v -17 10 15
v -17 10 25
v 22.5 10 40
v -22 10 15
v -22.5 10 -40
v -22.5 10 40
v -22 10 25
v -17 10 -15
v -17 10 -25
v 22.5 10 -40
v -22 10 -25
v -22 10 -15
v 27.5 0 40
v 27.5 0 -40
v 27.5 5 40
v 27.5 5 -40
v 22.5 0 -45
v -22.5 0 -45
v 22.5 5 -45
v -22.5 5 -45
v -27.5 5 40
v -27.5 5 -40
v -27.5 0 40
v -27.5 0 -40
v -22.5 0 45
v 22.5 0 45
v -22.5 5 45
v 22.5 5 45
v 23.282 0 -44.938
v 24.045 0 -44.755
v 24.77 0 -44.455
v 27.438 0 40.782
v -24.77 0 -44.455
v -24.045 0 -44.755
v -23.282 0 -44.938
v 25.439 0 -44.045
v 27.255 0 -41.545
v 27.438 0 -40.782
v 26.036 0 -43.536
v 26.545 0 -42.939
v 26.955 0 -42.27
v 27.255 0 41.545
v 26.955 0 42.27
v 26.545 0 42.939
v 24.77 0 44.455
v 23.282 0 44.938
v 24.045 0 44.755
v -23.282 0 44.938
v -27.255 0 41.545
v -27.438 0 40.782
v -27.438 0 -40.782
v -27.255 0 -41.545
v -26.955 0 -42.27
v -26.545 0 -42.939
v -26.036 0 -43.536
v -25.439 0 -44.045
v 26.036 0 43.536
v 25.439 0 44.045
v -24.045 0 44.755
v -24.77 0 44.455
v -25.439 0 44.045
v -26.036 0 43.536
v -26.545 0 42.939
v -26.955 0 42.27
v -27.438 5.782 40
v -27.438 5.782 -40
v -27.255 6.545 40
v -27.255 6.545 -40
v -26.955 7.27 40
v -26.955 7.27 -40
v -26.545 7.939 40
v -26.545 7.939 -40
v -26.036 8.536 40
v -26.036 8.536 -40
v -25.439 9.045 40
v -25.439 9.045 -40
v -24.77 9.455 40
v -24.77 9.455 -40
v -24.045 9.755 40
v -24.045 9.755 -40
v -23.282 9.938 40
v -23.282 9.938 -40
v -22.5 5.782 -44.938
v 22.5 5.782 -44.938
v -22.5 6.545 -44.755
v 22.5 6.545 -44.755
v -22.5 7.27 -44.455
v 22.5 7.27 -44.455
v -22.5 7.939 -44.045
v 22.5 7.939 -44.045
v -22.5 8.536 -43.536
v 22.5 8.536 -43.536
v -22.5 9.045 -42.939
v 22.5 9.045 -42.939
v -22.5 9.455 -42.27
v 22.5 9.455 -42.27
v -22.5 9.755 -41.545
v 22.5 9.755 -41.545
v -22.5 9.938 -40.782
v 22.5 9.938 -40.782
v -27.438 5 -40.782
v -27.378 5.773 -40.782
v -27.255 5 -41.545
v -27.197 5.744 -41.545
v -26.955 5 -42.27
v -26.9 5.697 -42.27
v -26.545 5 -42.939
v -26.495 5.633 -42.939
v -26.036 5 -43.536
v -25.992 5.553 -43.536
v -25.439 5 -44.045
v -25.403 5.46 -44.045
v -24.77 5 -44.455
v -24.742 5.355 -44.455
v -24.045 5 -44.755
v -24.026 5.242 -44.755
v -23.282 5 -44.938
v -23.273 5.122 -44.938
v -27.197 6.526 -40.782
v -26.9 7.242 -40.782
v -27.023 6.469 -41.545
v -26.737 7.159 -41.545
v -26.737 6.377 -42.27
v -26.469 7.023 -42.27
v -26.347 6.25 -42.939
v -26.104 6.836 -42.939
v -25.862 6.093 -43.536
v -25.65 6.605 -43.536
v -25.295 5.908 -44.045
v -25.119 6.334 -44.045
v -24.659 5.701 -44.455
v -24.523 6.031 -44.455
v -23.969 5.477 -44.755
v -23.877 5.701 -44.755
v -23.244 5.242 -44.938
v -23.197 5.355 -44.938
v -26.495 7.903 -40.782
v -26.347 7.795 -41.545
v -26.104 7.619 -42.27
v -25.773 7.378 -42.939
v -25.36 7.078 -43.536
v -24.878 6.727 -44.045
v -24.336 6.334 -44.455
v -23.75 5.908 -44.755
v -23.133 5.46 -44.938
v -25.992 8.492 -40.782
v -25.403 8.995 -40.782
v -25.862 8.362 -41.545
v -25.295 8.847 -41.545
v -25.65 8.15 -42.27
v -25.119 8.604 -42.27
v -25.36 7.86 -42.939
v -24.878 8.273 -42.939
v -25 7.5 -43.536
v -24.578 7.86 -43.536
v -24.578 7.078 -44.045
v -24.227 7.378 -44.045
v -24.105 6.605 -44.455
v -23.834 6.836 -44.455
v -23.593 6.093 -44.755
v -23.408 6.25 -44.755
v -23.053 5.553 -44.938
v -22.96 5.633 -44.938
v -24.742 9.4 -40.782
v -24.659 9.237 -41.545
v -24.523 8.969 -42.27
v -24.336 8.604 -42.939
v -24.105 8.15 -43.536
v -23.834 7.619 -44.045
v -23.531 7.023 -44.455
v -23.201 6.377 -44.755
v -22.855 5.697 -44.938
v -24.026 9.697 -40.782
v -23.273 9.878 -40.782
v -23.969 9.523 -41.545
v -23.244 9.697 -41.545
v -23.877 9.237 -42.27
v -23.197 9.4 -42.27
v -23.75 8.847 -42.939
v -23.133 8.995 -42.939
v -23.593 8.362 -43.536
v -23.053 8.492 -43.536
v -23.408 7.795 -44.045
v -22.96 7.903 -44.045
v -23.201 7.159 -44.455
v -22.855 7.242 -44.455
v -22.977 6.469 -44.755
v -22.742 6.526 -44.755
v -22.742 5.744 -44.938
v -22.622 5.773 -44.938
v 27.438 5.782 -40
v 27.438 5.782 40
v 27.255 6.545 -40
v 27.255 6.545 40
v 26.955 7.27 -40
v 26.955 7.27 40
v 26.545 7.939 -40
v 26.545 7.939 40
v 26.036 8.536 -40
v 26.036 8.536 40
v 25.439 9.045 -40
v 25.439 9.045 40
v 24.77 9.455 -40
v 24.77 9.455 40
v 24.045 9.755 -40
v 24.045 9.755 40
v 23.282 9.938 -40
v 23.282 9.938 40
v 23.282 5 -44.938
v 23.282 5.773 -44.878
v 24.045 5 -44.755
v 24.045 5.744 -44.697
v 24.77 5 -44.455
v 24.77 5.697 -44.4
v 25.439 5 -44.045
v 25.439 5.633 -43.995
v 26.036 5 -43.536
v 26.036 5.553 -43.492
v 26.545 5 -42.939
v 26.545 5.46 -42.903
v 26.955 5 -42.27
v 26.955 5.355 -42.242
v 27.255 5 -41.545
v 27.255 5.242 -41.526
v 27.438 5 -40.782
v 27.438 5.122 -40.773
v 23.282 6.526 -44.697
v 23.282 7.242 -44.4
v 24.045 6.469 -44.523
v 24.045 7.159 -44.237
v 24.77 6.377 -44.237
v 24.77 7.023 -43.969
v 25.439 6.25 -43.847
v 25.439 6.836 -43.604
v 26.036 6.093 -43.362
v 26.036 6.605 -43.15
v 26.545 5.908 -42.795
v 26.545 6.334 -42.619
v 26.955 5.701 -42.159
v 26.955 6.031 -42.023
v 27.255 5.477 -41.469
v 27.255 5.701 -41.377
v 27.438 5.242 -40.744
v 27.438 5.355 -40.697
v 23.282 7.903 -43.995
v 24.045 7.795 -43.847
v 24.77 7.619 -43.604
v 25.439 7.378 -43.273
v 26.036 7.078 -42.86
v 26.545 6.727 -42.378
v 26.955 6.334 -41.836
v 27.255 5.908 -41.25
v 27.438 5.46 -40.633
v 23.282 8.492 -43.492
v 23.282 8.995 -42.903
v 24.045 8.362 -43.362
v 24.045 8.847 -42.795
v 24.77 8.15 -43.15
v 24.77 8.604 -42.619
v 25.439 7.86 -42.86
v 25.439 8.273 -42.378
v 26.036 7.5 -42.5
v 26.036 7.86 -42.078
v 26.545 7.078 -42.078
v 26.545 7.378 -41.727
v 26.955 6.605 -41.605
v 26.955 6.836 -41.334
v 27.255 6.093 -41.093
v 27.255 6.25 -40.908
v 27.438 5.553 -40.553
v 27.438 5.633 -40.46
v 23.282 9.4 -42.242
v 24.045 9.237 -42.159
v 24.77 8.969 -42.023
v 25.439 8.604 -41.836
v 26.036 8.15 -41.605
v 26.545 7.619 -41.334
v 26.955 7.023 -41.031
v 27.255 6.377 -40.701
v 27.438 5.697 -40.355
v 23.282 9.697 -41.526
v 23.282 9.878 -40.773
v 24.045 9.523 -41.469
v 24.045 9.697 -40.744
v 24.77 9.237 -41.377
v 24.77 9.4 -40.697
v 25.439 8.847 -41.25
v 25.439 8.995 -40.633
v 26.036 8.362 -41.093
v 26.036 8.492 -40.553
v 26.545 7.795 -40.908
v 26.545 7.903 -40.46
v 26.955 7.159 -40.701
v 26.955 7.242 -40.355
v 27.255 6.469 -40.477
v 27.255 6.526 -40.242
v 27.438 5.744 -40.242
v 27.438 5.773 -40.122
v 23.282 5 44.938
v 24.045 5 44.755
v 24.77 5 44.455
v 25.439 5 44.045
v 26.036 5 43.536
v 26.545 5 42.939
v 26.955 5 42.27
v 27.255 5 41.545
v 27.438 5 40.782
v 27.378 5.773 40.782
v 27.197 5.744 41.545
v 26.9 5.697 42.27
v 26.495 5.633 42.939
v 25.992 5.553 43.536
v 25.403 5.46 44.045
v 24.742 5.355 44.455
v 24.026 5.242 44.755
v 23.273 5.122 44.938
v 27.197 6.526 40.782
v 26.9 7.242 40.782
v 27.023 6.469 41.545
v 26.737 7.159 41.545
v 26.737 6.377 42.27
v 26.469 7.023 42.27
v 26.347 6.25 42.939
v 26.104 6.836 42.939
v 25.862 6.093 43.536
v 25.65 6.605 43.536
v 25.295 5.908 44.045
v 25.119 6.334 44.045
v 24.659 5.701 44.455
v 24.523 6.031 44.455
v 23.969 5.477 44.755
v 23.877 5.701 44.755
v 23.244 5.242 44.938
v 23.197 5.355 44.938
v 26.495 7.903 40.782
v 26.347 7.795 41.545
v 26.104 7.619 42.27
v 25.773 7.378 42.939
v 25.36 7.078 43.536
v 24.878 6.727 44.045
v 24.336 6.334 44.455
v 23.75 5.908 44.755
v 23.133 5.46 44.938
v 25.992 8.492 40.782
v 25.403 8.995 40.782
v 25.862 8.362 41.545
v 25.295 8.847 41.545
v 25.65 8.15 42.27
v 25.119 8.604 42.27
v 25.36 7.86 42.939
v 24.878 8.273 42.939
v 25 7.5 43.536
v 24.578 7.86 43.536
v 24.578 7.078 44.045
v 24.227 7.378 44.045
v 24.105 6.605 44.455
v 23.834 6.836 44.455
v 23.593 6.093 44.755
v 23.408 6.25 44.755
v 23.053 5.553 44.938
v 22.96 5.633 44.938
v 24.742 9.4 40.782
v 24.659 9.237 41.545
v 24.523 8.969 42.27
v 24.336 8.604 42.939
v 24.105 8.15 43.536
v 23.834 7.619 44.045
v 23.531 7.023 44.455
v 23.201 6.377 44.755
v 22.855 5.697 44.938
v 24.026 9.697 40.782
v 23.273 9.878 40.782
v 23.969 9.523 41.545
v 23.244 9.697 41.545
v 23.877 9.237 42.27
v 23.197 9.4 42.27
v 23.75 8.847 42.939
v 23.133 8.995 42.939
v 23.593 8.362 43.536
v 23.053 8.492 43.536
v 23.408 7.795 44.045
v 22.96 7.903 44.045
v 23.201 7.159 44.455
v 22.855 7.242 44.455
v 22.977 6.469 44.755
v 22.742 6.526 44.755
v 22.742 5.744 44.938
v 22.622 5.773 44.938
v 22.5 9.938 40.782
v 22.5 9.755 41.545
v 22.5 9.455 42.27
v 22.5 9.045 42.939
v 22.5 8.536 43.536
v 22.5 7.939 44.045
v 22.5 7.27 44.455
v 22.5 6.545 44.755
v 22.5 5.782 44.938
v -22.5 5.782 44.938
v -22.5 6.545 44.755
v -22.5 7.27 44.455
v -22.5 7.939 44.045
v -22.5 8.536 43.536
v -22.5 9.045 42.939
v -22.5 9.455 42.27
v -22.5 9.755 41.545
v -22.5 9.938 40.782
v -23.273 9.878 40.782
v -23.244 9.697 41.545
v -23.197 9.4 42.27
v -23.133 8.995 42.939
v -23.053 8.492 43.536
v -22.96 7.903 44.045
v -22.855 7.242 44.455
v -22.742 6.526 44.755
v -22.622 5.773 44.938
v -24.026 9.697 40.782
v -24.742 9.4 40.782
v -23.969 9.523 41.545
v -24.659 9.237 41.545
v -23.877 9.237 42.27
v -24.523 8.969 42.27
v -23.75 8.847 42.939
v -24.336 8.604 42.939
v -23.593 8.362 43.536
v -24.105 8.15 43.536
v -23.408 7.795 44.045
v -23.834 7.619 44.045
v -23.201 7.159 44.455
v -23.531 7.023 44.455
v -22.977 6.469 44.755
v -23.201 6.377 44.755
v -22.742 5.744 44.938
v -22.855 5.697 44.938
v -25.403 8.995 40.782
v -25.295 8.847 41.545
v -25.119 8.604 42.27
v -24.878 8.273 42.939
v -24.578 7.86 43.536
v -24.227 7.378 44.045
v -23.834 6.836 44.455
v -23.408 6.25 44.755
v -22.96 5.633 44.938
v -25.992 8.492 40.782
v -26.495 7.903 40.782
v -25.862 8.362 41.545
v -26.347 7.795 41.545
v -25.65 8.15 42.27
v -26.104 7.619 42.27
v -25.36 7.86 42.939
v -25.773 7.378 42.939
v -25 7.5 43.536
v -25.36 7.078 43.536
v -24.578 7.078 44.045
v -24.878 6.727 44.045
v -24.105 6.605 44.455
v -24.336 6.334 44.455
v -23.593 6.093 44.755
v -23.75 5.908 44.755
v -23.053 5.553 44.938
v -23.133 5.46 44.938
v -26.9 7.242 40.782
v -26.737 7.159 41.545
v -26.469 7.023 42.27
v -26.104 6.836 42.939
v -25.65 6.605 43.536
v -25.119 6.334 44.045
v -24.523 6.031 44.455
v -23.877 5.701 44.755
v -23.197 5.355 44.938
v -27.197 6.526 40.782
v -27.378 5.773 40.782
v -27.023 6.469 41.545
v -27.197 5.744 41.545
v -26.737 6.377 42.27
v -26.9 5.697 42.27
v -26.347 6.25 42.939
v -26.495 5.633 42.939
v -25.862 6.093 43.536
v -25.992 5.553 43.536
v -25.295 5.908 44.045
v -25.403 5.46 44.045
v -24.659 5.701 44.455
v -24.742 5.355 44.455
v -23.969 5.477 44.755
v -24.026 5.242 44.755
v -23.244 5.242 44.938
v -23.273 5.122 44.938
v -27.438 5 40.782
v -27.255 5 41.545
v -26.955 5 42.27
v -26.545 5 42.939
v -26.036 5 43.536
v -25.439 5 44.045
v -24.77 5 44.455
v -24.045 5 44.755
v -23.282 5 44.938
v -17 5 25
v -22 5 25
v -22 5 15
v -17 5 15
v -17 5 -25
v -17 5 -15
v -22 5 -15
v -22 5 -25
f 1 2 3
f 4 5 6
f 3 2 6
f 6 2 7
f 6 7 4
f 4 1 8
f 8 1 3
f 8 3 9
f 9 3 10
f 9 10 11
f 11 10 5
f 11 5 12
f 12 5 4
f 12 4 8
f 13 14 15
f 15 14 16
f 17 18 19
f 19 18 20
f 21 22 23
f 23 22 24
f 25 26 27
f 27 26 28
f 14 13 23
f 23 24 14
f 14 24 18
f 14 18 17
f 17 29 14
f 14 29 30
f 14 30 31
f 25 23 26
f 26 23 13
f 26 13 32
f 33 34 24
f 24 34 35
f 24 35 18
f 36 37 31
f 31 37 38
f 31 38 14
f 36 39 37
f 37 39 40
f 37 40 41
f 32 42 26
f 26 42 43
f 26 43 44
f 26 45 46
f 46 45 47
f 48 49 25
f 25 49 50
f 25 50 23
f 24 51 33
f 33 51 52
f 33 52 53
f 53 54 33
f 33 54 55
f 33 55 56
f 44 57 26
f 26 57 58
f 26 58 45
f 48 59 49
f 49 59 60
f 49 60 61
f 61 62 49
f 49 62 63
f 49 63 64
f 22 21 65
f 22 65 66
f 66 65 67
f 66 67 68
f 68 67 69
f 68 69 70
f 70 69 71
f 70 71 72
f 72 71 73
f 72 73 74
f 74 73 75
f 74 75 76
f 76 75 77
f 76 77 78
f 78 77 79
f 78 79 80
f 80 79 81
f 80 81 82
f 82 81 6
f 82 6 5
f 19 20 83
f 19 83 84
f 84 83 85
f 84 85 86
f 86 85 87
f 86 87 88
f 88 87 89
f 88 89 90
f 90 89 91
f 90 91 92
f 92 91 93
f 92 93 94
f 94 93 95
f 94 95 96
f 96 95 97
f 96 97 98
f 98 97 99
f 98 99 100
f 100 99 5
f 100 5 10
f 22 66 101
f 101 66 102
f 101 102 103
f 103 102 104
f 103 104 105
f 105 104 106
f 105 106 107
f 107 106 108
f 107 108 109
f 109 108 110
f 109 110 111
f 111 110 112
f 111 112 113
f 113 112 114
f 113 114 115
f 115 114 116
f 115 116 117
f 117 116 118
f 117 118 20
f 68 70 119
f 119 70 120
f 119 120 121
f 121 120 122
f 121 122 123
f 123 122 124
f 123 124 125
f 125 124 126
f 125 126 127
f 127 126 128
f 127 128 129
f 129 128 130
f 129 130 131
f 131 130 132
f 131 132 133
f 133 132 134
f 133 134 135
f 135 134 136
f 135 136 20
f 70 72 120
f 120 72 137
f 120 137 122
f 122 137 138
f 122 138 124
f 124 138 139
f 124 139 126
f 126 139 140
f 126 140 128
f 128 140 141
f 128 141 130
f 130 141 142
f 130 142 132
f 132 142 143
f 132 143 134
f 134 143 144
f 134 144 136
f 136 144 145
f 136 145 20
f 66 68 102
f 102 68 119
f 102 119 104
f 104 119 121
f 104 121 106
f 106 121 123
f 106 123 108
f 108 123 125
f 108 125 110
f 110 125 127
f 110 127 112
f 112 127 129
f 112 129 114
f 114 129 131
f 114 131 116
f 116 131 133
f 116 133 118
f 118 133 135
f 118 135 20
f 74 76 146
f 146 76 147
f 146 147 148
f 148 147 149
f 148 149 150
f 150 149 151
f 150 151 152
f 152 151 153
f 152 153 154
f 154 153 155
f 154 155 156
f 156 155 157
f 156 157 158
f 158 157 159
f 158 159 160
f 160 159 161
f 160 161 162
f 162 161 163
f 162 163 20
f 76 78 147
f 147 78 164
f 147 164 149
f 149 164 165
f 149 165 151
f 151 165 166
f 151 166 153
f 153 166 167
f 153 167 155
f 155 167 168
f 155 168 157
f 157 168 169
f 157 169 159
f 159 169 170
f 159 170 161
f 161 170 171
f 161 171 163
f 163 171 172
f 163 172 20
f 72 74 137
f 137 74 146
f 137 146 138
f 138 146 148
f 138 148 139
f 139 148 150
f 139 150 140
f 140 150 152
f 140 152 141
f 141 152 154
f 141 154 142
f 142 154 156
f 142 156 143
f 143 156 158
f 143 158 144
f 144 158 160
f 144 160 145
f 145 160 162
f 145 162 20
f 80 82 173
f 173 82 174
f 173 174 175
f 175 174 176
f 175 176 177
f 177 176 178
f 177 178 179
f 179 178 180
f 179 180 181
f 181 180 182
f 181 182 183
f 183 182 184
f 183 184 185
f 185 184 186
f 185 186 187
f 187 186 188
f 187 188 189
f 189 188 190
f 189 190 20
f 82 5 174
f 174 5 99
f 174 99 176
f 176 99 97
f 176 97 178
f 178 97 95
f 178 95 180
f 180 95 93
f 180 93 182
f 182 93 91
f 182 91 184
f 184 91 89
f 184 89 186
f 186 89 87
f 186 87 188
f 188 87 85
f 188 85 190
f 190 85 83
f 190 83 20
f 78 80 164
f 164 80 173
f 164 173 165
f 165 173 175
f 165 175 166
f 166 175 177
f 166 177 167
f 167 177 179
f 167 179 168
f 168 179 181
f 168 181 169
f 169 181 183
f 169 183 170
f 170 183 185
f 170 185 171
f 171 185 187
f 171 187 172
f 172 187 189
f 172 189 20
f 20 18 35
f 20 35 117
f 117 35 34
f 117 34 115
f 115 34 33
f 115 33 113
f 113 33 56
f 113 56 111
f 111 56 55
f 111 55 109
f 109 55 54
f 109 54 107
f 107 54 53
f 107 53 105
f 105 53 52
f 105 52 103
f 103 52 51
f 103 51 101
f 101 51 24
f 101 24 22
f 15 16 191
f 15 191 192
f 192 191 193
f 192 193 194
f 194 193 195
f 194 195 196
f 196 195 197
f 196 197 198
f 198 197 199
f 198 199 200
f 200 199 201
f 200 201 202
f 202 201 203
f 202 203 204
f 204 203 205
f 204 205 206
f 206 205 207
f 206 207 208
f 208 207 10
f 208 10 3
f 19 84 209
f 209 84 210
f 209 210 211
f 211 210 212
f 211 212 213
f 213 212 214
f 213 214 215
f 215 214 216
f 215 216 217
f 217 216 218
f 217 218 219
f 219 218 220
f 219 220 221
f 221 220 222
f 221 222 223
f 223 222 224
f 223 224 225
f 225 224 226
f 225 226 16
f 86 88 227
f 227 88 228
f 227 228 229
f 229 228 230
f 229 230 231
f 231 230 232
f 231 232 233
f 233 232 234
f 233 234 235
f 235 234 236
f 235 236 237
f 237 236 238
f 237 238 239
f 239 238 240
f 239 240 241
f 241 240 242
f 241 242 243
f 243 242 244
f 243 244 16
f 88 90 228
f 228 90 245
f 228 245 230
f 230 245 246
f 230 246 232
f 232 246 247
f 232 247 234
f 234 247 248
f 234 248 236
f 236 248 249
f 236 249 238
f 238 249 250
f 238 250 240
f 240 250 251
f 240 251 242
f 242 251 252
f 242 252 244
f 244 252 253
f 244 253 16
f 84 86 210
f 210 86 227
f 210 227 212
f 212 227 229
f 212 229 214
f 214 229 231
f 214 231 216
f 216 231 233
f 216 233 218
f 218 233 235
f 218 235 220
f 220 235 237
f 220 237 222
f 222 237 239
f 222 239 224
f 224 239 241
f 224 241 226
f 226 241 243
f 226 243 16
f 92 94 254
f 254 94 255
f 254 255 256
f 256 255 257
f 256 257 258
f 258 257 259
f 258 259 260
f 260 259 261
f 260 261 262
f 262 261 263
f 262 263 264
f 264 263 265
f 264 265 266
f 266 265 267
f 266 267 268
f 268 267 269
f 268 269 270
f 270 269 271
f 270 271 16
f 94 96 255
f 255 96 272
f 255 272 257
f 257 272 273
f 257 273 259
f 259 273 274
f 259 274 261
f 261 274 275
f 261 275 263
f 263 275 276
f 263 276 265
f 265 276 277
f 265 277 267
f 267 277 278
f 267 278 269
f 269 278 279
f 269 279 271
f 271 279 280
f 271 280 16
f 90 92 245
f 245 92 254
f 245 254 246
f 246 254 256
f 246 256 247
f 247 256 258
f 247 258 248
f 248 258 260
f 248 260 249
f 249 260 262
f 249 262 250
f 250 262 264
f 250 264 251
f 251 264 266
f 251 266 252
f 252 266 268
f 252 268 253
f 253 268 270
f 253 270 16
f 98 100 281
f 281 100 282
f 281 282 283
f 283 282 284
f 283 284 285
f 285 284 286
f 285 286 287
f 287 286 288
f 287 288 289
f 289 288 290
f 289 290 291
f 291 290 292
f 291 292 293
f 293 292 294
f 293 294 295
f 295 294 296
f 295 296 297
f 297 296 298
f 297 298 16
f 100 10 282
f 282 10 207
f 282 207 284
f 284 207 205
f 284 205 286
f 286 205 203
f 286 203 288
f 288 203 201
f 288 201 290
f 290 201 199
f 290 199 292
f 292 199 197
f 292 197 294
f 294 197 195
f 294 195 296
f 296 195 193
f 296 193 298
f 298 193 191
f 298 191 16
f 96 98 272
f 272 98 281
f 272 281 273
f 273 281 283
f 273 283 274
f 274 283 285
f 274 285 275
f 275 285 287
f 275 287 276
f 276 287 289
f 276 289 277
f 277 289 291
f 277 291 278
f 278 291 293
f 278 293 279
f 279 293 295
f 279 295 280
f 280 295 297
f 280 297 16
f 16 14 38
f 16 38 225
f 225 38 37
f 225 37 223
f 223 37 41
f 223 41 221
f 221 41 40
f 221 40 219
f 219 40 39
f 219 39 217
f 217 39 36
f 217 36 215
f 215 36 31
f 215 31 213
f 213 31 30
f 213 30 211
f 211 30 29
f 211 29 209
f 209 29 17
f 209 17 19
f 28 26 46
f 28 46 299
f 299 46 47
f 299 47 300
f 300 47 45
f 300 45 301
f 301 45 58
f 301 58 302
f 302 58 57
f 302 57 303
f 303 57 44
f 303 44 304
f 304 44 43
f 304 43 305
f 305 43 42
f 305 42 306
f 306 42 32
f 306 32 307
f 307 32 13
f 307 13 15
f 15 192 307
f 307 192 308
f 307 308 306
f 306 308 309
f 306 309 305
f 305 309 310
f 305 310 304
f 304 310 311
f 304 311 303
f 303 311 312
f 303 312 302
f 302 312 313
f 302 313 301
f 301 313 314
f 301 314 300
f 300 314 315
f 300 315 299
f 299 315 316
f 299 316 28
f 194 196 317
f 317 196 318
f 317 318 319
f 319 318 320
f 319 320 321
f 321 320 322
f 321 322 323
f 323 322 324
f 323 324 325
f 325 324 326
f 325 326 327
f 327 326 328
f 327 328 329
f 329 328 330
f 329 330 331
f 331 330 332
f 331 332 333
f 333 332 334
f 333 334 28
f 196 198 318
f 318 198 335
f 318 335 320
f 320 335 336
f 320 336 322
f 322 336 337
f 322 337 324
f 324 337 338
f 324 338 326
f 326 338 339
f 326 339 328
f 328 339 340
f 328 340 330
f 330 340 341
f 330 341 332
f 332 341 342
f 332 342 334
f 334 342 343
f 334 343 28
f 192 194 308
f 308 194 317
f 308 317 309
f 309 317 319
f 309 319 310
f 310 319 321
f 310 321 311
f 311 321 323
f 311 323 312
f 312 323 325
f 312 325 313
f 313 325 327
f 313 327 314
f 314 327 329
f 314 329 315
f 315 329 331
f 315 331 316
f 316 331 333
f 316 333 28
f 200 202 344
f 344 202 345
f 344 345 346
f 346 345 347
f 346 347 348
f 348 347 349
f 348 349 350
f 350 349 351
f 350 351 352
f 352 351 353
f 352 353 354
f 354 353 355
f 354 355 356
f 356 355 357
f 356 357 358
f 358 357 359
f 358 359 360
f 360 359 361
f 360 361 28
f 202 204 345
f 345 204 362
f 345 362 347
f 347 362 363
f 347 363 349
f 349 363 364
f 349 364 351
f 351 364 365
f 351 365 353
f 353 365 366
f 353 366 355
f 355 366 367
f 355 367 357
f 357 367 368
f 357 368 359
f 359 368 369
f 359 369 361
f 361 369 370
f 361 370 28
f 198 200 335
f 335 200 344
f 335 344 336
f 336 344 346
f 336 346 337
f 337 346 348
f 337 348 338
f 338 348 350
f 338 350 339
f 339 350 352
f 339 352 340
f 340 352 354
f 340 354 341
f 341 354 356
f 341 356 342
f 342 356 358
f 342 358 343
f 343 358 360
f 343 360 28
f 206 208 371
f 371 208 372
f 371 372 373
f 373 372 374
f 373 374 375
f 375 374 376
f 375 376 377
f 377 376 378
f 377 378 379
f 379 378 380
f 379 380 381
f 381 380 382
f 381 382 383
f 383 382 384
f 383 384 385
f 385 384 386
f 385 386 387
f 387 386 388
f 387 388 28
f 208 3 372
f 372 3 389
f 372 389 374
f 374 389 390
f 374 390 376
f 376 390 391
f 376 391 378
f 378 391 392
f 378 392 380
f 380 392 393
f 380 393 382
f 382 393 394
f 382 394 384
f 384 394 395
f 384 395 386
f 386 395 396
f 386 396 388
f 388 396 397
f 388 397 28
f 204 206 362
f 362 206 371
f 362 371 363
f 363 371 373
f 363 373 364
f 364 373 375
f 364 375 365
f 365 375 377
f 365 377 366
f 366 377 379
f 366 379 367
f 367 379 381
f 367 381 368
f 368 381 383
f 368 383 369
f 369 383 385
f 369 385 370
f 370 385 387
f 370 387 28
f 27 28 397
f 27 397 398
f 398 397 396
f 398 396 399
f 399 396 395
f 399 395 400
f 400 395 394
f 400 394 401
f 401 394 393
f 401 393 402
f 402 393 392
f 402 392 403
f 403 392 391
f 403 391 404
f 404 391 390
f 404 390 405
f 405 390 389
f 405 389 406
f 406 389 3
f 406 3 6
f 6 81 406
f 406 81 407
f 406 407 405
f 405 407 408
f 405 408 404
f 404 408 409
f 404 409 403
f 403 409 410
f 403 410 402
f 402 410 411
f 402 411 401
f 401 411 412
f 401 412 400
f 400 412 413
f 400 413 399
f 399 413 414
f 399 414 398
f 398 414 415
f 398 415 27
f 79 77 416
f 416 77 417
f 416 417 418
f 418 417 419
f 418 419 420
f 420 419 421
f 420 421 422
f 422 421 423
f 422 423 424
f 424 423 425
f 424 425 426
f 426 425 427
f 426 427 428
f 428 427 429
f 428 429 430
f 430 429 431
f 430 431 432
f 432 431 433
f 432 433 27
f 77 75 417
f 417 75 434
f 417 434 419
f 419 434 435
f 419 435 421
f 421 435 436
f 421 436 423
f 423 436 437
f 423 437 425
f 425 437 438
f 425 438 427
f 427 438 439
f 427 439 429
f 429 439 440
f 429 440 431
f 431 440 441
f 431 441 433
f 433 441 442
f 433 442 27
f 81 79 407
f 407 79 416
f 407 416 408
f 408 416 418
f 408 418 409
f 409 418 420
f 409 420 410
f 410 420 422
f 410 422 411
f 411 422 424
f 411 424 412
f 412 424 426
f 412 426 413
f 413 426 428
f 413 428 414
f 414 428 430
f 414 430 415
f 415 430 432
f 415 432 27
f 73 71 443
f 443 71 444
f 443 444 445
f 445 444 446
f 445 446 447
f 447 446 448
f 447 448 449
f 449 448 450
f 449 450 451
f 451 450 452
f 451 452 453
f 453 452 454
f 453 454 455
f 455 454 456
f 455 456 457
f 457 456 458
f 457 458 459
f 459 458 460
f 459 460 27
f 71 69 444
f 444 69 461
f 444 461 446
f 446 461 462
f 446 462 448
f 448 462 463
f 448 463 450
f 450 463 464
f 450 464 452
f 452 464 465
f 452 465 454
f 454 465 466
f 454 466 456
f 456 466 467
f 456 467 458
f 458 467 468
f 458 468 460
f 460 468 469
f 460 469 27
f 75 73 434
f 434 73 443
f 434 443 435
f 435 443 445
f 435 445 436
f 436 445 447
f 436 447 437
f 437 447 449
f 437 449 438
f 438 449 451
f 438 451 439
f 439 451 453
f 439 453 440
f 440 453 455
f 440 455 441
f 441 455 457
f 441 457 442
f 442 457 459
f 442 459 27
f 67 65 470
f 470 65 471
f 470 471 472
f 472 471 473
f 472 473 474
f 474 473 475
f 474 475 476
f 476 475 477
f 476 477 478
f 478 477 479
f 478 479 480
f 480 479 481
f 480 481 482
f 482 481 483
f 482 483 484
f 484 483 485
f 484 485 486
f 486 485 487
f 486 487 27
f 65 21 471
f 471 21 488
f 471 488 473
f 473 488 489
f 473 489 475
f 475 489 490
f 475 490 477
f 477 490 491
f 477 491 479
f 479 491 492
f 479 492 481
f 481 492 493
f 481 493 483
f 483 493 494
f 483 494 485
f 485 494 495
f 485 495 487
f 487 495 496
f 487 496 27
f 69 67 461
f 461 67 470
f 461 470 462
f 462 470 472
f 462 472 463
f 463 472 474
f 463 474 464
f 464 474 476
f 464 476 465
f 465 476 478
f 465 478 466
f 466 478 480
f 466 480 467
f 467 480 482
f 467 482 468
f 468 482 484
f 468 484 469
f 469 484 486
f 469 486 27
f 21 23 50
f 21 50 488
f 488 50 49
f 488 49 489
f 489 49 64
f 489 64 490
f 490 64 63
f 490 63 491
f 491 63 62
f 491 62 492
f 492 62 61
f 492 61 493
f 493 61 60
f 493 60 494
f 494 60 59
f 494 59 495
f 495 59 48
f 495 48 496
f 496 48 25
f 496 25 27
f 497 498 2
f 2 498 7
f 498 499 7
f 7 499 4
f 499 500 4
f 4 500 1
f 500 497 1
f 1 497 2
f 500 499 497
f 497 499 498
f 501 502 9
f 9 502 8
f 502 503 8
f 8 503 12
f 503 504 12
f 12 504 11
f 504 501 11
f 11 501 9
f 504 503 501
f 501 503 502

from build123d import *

# Parameters (mm, degrees)
SKETCH_2_W          = 55
SKETCH_2_H          = 90
EXTRUDE_1_DEPTH     = 10
FILLET_1_R          = 5
FILLET_2_R          = 5
FILLET_3_R          = 5
FILLET_4_R          = 5
SKETCH_3_W          = 5
SKETCH_3_H          = 10
CUT_EXTRUDE_1_DEPTH = 5


with BuildPart() as part:
    # 草图2 → 凸台-拉伸1 (new body)
    with BuildSketch(Plane(origin=(0, 0, 0), x_dir=(1, 0, 0), z_dir=(0, 1, 0))):
        Rectangle(SKETCH_2_W, SKETCH_2_H)
    extrude(amount=EXTRUDE_1_DEPTH)

    # 圆角1
    fillet_1_edges = [part.edges().sort_by_distance(p)[0] for p in [
        (-27.5, 10, 0),
    ]]
    fillet(fillet_1_edges, radius=FILLET_1_R)

    # 圆角2
    fillet_2_edges = [part.edges().sort_by_distance(p)[0] for p in [
        (-27.5, 2.5, -45),
        (-26.035533906, 8.535533906, -45),
        (2.5, 10, -45),
    ]]
    fillet(fillet_2_edges, radius=FILLET_2_R)

    # 圆角3
    fillet_3_edges = [part.edges().sort_by_distance(p)[0] for p in [
        (27.5, 2.5, -45),
        (27.5, 8.535533906, -43.535533906),
        (27.5, 10, 2.5),
    ]]
    fillet(fillet_3_edges, radius=FILLET_3_R)

    # 圆角4
    fillet_4_edges = [part.edges().sort_by_distance(p)[0] for p in [
        (0, 10, 45),
        (-27.5, 2.5, 45),
        (-26.035533906, 8.535533906, 45),
        (27.5, 2.5, 45),
        (26.035533906, 8.535533906, 45),
    ]]
    fillet(fillet_4_edges, radius=FILLET_4_R)

    # 草图3 → 切除-拉伸1 (cut)
    with BuildSketch(Plane(origin=(0, 10, 0), x_dir=(1, 0, 0), z_dir=(0, 1, 0))):
        with Locations((-19.5, 20)):
            Rectangle(SKETCH_3_W, SKETCH_3_H)
        with Locations((-19.5, -20)):
            Rectangle(SKETCH_3_W, SKETCH_3_H)
    extrude(amount=-CUT_EXTRUDE_1_DEPTH, mode=Mode.SUBTRACT)


solid = part.part
